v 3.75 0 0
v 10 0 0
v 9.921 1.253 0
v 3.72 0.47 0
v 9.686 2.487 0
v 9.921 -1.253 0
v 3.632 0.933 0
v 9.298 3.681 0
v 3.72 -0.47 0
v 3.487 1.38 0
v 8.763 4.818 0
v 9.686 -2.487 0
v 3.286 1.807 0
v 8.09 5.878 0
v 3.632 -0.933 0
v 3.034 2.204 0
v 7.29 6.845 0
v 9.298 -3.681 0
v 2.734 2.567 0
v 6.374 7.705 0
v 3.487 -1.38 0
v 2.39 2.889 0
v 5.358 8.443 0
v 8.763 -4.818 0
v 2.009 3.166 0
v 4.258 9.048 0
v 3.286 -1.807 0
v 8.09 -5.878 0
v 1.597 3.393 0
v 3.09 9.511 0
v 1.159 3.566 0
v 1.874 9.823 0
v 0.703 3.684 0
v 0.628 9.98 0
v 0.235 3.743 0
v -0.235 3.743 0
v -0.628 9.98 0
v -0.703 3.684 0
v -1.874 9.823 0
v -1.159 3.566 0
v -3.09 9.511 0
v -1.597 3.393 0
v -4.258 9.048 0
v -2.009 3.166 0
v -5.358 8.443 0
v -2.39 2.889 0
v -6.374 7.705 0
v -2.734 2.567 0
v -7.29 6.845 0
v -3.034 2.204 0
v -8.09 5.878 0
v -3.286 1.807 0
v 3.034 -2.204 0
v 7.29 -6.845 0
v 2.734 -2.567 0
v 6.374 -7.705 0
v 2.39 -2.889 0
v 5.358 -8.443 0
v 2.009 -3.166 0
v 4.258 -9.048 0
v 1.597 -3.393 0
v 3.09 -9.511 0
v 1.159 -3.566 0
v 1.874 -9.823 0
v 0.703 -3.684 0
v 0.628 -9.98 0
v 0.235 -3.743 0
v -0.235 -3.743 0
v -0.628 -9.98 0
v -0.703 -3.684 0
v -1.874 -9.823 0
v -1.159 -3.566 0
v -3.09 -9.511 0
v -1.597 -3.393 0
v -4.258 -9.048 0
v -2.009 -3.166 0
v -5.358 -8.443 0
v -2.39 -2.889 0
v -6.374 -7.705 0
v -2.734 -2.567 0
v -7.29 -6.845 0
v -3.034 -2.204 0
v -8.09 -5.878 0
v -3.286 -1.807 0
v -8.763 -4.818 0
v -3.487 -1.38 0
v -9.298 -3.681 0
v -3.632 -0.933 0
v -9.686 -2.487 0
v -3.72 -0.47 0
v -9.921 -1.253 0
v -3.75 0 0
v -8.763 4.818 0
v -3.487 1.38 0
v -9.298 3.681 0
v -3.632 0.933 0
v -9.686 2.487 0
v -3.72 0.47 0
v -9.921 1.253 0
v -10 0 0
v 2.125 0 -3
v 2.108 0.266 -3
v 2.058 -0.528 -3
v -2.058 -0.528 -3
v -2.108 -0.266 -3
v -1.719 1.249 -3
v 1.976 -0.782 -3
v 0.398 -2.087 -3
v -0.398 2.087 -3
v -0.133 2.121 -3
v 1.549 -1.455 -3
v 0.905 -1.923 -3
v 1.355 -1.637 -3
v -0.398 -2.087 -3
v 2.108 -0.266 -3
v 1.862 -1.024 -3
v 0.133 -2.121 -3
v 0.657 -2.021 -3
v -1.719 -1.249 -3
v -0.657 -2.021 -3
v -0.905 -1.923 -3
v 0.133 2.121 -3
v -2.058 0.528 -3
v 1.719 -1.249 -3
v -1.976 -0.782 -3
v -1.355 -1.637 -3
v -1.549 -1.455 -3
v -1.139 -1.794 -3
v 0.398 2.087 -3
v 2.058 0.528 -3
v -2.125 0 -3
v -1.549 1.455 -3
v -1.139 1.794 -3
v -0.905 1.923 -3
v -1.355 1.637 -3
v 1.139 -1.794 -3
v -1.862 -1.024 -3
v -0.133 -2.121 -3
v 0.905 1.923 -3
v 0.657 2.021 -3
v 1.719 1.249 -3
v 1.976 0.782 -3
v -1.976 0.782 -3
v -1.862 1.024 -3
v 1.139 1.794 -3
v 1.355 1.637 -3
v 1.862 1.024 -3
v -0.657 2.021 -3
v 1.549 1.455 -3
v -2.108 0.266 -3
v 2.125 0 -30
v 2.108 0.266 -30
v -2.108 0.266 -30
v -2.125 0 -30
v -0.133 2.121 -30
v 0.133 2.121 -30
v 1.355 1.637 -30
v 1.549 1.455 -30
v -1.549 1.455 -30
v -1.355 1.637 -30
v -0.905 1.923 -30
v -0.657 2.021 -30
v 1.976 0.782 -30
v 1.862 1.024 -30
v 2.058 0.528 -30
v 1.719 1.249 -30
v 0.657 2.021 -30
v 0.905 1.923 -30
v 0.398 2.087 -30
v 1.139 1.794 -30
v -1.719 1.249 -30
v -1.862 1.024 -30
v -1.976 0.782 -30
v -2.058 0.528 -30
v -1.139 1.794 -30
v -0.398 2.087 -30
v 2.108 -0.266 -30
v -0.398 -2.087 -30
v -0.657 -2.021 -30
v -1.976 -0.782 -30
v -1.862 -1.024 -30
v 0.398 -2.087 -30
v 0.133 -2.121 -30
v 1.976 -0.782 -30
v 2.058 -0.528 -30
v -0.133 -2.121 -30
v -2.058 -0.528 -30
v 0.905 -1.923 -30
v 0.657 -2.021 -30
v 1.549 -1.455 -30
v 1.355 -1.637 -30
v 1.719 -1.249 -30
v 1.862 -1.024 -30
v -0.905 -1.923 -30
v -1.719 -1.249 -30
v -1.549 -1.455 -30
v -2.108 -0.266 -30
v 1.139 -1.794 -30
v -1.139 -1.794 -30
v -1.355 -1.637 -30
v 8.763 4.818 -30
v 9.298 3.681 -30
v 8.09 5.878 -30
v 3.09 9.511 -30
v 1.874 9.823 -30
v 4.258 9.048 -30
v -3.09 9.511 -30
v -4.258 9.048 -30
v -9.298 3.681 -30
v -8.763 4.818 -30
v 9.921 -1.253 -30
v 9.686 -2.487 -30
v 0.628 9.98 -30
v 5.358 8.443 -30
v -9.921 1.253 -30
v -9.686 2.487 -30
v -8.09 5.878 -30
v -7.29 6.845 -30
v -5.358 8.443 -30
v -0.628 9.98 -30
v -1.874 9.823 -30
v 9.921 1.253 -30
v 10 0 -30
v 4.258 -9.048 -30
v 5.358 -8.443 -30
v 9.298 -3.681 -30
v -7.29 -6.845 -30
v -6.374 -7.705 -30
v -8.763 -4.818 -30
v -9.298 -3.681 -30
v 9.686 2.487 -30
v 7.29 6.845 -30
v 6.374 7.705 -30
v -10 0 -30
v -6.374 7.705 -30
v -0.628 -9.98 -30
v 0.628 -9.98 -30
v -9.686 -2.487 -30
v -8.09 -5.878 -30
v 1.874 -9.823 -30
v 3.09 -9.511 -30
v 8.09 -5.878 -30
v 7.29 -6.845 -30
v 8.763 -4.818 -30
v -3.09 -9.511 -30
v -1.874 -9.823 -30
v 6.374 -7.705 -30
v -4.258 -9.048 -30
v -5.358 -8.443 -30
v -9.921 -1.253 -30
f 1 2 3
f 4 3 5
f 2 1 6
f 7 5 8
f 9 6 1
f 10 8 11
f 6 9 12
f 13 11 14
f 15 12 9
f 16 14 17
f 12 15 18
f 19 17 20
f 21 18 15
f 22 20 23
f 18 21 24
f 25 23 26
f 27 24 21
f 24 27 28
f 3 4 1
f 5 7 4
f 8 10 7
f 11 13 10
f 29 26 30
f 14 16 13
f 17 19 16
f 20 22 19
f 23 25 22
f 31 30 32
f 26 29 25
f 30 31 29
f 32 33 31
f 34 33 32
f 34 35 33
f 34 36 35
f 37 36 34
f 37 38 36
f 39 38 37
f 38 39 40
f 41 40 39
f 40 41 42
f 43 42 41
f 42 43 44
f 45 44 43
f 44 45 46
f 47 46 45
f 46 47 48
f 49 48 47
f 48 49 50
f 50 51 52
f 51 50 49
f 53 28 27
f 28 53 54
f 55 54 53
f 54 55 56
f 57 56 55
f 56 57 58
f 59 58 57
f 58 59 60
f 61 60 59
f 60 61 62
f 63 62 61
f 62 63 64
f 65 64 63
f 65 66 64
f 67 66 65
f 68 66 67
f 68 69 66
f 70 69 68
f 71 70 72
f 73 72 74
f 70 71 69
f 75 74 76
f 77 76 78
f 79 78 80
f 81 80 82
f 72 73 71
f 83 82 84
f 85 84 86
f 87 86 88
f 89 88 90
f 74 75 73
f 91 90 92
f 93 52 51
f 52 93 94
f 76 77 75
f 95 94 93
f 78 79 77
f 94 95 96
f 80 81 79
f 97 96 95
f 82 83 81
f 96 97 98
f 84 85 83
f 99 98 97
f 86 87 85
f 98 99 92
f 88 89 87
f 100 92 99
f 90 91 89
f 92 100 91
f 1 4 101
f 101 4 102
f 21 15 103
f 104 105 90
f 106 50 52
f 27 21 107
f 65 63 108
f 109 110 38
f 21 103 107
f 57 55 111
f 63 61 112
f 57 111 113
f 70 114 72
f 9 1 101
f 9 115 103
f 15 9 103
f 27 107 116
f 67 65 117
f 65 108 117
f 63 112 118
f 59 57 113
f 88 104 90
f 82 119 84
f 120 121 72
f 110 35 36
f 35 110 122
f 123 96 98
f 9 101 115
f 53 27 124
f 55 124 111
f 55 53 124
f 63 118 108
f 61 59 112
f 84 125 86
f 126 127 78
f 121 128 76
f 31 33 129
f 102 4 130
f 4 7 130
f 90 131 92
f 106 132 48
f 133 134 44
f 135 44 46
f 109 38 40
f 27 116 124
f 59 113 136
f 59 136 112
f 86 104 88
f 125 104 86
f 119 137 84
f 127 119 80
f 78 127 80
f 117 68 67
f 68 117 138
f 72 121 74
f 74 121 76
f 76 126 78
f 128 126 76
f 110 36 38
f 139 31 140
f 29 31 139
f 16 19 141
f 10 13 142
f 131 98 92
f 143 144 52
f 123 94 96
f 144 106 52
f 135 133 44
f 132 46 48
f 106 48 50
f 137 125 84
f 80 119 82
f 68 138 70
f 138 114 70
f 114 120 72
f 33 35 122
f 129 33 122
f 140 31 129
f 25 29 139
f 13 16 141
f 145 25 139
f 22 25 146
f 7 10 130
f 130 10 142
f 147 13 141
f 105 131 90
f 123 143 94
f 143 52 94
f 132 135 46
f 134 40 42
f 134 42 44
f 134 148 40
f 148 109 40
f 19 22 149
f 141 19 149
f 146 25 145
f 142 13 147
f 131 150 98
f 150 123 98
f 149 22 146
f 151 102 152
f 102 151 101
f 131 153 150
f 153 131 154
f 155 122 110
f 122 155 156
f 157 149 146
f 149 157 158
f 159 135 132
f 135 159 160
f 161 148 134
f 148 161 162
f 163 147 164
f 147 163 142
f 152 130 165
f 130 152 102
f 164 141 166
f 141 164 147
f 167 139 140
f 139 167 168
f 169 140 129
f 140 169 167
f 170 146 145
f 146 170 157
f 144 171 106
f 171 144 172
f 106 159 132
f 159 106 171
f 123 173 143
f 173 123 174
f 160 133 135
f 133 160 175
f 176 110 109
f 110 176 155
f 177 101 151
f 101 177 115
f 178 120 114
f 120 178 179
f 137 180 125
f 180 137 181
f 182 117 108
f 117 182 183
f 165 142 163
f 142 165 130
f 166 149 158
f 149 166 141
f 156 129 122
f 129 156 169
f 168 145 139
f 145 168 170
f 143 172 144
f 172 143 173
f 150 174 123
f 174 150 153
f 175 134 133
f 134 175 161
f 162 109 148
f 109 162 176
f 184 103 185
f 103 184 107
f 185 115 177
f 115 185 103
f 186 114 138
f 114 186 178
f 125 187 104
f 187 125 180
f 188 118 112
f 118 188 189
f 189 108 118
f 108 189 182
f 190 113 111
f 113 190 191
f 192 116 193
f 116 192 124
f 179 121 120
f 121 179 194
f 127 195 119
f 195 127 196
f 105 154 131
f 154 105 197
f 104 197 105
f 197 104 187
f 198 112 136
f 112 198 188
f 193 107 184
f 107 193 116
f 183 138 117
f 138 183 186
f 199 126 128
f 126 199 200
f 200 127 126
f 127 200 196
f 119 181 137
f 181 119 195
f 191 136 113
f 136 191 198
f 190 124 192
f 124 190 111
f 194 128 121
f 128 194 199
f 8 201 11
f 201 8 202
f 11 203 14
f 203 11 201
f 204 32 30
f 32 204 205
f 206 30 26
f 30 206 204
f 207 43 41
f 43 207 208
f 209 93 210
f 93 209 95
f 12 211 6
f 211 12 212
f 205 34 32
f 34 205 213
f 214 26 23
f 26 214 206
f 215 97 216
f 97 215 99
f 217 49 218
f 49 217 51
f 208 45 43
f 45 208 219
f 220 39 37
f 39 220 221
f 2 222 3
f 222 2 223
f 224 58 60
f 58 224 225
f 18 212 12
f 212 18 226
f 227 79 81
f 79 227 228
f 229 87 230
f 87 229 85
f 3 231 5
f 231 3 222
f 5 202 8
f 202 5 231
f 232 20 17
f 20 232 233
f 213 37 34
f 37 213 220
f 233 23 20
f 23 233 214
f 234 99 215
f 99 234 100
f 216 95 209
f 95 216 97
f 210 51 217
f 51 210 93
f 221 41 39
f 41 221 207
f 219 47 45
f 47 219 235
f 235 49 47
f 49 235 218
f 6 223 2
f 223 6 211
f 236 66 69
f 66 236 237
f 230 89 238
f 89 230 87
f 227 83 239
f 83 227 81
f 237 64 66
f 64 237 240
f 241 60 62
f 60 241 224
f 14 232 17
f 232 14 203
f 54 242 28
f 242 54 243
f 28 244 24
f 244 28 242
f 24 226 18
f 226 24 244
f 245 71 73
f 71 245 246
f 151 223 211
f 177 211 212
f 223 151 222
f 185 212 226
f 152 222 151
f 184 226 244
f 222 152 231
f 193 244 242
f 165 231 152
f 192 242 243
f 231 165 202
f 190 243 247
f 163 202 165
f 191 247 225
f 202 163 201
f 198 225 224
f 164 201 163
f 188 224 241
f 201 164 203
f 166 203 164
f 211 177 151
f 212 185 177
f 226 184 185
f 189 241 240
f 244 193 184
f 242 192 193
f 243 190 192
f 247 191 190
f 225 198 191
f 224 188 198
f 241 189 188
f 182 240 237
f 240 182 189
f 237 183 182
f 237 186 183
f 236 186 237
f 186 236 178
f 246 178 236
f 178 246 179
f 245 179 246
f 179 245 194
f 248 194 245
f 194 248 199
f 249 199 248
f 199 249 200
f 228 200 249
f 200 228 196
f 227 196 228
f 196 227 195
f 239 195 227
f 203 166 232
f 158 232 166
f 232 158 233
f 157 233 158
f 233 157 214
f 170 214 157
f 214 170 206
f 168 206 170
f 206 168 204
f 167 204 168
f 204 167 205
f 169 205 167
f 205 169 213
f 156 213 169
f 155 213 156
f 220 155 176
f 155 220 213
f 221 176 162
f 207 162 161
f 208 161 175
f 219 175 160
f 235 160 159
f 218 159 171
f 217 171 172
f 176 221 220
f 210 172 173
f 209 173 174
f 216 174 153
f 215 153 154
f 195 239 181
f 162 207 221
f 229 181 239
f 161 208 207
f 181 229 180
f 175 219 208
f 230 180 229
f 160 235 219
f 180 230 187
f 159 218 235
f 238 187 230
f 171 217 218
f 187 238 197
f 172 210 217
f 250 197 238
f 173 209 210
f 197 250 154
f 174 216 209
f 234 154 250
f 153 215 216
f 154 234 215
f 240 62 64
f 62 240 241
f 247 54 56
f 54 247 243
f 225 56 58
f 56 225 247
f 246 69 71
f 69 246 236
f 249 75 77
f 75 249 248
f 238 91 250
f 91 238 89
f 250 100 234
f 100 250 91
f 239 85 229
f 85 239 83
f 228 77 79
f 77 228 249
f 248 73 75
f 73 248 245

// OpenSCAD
$fn = 50;


difference() {
	union() {
		translate(v = [0, 0, -30.0000000000]) {
			cylinder(h = 30, r = 10.0000000000);
		}
	}
	union() {
		translate(v = [0, 0, 0]) {
			rotate(a = [0, 0, 0]) {
				difference() {
					union() {
						translate(v = [0, 0, -33.0000000000]) {
							cylinder(h = 33, r = 2.0000000000);
						}
						translate(v = [0, 0, -3]) {
							cylinder(h = 3, r1 = 2.1250000000, r2 = 3.7500000000);
						}
						translate(v = [0, 0, -33.0000000000]) {
							cylinder(h = 33, r = 2.1250000000);
						}
						translate(v = [0, 0, -33.0000000000]) {
							cylinder(h = 33, r = 2.0000000000);
						}
					}
					union();
				}
			}
		}
	}
}
